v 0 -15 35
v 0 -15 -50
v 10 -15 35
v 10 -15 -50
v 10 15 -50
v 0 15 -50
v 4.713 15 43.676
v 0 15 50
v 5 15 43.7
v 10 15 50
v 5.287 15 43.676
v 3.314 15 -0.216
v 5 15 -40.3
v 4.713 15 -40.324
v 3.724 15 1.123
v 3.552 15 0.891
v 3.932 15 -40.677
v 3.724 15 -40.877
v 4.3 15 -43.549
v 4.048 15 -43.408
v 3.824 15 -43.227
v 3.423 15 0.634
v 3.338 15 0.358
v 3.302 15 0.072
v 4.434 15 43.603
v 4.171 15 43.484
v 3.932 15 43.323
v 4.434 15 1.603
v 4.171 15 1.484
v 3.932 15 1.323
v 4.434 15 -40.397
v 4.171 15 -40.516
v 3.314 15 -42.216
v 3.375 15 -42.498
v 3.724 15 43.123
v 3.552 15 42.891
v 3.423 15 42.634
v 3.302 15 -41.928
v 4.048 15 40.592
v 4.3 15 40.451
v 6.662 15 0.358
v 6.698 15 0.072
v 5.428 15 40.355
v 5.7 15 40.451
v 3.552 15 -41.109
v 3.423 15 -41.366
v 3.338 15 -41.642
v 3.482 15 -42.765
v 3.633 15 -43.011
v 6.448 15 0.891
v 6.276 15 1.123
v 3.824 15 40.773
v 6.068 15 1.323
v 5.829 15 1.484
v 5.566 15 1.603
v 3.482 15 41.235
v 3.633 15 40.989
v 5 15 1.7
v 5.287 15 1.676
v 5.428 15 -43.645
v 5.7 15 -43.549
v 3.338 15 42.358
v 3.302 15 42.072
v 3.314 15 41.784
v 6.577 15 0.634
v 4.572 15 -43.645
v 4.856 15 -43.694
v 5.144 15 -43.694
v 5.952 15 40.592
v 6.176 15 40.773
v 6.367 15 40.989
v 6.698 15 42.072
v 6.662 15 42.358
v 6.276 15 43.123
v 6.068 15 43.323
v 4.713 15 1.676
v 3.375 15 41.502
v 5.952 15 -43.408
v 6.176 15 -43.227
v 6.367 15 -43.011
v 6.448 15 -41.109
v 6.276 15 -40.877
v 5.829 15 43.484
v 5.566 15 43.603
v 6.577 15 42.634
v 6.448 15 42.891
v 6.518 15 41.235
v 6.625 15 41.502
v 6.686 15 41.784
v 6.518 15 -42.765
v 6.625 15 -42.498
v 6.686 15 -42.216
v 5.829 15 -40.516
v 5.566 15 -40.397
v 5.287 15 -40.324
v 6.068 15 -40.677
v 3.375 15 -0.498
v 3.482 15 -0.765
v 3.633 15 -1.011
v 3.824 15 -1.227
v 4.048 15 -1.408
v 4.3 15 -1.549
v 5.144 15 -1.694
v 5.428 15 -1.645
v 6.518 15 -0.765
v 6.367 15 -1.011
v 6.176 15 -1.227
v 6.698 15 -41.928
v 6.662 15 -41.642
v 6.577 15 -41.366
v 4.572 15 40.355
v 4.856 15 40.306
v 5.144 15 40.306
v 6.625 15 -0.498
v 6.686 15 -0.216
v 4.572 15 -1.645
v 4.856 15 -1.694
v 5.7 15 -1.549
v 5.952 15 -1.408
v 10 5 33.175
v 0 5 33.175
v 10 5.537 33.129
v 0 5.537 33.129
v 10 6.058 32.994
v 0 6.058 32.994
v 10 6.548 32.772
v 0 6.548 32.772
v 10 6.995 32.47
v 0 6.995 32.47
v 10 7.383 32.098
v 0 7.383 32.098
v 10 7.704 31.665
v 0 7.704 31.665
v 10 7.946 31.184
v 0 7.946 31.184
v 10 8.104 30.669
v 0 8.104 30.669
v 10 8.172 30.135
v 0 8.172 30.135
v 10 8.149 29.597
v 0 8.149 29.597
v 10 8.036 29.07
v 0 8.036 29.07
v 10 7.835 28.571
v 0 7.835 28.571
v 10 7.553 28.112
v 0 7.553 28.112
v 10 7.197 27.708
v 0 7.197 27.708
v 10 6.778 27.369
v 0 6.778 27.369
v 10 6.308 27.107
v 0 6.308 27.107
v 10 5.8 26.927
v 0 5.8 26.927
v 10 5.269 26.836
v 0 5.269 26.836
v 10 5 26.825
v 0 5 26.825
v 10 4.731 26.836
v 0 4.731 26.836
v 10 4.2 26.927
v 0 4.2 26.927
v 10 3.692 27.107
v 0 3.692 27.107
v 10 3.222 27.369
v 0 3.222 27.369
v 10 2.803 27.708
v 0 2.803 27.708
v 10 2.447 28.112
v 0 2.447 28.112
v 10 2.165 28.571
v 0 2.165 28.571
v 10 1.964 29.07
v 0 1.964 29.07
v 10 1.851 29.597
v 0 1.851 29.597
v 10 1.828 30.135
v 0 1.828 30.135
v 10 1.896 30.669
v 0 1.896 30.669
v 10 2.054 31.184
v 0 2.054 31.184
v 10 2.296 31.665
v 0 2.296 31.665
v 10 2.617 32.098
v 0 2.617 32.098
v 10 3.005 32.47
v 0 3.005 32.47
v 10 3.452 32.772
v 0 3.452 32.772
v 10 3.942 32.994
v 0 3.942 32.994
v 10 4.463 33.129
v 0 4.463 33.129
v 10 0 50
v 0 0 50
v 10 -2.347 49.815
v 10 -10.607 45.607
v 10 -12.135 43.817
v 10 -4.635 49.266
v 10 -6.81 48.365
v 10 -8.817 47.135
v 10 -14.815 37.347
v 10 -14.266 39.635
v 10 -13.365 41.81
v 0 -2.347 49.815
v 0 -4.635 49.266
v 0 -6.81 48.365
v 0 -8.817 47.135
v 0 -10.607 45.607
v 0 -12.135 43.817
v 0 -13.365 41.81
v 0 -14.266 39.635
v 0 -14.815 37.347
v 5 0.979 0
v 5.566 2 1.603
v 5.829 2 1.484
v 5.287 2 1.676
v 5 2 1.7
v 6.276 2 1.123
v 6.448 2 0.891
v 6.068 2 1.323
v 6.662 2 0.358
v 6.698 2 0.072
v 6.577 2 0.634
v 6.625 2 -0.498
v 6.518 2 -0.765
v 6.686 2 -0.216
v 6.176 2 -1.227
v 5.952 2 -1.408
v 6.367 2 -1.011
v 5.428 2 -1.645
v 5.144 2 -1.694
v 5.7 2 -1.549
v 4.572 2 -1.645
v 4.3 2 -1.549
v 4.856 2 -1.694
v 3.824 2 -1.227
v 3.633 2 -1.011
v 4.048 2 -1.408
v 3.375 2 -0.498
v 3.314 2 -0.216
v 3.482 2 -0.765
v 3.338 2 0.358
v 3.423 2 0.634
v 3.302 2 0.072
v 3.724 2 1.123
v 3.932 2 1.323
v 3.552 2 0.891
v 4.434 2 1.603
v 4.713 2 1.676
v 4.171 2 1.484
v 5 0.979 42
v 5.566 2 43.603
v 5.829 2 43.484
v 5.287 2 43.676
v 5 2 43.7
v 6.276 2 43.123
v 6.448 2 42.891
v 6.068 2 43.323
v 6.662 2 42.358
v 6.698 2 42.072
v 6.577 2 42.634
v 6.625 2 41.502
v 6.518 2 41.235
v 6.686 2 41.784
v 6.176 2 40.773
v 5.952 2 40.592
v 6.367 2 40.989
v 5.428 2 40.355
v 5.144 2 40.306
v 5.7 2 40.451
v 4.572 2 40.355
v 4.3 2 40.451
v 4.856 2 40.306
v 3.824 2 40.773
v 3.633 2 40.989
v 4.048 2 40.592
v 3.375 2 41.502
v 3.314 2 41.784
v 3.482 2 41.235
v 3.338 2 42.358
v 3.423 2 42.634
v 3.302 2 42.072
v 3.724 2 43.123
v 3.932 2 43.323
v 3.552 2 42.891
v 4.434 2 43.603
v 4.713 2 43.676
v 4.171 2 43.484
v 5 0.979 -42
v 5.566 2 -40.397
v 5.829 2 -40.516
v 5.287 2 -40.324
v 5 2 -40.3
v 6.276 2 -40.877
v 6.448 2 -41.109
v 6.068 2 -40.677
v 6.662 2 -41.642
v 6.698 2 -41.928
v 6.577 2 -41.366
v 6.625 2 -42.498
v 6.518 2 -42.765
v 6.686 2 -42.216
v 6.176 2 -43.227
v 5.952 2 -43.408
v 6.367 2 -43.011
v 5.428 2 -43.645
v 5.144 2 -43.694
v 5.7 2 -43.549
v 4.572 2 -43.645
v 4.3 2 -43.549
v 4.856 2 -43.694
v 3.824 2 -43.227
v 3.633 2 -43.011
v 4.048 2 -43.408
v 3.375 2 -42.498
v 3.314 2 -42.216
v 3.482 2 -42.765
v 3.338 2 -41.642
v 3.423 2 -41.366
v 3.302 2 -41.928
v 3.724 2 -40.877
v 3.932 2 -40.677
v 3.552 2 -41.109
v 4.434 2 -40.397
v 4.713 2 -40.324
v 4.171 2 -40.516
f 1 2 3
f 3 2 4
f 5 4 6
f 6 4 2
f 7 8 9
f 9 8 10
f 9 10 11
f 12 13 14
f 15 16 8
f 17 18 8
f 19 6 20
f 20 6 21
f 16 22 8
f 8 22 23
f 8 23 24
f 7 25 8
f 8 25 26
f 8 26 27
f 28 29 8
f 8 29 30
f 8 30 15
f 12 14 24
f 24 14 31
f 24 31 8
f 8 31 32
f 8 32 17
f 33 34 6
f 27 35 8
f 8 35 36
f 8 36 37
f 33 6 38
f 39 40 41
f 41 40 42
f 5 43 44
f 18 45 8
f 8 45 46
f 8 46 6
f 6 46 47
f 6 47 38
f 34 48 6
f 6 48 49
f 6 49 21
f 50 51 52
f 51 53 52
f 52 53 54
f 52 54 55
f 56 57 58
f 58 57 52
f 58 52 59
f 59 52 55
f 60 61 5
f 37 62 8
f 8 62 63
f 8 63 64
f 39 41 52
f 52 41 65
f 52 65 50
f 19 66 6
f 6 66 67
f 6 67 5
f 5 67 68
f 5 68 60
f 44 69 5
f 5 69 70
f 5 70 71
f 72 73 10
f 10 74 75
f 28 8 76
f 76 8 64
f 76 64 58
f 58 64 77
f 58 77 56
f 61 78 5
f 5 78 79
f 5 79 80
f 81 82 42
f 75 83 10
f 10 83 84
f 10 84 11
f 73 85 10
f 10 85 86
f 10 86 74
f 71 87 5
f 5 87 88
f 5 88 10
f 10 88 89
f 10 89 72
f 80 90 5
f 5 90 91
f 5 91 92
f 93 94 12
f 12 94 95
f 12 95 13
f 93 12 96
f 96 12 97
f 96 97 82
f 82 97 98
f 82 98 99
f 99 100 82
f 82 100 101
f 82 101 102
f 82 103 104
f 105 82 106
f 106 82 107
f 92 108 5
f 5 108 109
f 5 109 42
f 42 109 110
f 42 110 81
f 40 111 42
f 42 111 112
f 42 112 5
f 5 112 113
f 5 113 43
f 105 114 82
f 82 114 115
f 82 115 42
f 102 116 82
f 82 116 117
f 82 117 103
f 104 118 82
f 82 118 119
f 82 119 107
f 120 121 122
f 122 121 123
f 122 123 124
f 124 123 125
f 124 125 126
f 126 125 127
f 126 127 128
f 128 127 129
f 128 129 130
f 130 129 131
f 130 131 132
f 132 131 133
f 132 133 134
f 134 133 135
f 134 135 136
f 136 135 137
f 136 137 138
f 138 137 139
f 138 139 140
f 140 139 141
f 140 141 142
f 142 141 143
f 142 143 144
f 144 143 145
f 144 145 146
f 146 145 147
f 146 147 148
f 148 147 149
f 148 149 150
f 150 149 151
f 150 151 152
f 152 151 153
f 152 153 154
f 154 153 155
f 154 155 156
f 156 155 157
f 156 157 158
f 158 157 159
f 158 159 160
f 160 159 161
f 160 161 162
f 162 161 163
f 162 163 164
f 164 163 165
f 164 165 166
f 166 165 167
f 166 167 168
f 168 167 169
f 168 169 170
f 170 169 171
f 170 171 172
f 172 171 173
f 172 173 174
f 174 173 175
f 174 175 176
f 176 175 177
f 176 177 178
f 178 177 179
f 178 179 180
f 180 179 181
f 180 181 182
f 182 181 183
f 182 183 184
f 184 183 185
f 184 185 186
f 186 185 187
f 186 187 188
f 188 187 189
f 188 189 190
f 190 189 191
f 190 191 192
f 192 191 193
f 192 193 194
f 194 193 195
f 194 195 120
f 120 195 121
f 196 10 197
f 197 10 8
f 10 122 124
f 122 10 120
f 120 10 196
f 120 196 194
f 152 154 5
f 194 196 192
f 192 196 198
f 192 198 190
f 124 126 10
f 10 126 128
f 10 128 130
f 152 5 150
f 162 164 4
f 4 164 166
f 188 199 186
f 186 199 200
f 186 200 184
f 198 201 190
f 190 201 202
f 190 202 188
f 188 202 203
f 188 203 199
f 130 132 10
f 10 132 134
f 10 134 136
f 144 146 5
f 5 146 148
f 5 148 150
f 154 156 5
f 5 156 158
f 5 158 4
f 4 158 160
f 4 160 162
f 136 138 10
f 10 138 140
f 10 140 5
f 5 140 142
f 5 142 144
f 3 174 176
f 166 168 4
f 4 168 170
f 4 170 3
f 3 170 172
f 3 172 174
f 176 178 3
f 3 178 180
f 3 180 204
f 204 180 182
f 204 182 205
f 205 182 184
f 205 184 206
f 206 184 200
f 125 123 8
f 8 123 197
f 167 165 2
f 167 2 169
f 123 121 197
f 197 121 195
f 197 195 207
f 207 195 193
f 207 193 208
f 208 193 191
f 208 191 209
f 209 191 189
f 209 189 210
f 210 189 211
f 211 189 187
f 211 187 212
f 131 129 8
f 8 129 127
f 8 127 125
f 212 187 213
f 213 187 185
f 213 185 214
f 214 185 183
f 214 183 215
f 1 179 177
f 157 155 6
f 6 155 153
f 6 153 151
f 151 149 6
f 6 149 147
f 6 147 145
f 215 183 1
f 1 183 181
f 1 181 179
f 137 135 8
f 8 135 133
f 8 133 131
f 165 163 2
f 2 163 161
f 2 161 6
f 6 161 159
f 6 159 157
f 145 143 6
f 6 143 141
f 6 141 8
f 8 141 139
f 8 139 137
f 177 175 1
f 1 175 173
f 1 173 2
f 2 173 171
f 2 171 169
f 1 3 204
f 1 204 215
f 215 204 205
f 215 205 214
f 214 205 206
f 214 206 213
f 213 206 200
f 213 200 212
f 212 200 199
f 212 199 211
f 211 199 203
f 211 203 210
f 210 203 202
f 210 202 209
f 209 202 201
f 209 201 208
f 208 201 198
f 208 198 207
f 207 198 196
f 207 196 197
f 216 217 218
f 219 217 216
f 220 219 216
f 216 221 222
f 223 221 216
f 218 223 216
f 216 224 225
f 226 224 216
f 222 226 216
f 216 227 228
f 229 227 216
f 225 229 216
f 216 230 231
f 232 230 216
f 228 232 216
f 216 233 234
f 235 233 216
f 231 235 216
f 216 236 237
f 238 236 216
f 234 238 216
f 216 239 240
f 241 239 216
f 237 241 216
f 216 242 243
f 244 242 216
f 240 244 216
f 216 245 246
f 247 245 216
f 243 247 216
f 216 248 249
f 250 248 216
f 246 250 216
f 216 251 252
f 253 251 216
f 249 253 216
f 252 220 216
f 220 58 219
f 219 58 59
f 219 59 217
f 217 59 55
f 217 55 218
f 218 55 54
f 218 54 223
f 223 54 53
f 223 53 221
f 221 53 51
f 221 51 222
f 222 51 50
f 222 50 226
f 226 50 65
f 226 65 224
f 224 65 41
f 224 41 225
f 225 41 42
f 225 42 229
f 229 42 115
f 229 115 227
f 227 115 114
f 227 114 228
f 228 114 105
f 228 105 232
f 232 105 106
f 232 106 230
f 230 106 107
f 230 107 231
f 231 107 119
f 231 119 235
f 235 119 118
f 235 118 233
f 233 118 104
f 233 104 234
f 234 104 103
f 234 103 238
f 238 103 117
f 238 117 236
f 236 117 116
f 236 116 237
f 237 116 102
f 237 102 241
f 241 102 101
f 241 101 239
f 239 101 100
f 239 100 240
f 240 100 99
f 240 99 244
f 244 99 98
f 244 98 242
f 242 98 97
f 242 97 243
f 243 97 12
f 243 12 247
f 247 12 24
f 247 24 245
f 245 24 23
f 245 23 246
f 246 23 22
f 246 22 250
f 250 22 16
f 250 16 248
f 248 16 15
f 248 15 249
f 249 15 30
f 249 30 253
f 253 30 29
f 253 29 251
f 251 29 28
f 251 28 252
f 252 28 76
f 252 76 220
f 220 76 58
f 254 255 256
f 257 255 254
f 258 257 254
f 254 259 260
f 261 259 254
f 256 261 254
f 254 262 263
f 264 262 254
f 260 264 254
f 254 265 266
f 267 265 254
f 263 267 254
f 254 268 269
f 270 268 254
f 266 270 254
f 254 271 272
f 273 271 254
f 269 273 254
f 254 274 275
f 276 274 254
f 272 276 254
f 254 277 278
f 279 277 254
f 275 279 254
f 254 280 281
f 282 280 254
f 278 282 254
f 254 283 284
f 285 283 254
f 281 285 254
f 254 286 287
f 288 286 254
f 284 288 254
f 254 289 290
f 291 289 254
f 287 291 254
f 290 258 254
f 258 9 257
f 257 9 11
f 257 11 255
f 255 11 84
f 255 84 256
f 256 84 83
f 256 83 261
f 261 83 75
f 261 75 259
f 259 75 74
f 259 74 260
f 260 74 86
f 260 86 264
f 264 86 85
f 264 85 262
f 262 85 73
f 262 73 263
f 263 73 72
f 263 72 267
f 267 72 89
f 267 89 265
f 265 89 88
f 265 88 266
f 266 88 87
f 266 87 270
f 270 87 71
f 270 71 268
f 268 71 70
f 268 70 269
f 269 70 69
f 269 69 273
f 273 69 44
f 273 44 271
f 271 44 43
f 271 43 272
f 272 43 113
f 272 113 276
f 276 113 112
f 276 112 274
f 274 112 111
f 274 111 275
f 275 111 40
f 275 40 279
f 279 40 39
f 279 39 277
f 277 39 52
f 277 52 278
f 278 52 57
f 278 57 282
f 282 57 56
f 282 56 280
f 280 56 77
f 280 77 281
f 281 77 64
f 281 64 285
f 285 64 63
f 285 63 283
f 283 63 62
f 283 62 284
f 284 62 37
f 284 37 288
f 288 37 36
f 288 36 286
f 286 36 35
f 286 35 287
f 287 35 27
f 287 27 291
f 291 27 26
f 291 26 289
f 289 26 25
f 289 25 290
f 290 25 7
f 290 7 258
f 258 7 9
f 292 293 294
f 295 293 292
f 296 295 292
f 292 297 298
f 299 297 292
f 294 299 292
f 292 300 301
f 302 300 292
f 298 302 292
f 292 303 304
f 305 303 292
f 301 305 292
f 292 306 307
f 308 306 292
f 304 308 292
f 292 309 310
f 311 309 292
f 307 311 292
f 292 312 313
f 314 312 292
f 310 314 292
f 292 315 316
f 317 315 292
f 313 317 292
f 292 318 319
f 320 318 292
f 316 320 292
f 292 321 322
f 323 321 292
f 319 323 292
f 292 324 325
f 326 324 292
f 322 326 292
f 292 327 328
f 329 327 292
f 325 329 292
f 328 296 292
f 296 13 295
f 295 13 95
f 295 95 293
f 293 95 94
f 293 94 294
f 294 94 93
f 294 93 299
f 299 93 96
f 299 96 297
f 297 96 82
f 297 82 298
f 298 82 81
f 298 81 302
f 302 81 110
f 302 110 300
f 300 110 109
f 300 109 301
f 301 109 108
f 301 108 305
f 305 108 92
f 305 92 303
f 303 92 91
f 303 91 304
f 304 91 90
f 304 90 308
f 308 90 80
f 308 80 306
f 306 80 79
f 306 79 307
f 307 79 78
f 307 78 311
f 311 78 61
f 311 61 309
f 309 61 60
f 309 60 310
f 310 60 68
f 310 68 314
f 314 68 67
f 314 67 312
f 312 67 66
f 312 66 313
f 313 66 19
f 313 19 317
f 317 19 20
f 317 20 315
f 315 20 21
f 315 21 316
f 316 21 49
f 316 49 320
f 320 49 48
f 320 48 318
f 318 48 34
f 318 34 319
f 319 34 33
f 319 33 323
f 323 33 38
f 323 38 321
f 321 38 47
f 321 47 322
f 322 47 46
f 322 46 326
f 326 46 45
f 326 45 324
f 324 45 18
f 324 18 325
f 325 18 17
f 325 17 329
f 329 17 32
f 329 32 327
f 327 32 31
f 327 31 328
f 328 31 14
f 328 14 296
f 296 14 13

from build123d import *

# Parameters (mm, degrees)
SKETCH1_W                     = 100
SKETCH1_H                     = 30
SKETCH1_R                     = 3.175
BOSS_EXTRUDE1_DEPTH           = 10
FILLET1_R                     = 15
CBORE_FOR_M3_SHCS_D           = 3.4
CBORE_FOR_M3_SHCS_DEPTH       = 23
CBORE_FOR_M3_SHCS_CBORE_D     = 6.5
CBORE_FOR_M3_SHCS_CBORE_DEPTH = 3
CBORE_FOR_M3_SHCS_TIP         = 1.021463052


with BuildPart() as part:
    # Sketch1 → Boss-Extrude1 (new body)
    with BuildSketch(Plane(origin=(0, 0, 0), x_dir=(0, 0, -1), z_dir=(1, 0, 0))):
        Rectangle(SKETCH1_W, SKETCH1_H)
        with Locations((-30, 5)):
            Circle(SKETCH1_R, mode=Mode.SUBTRACT)
    extrude(amount=BOSS_EXTRUDE1_DEPTH)

    # Fillet1
    fillet1_edges = [part.edges().sort_by_distance(p)[0] for p in [
        (5, -15, 50),
    ]]
    fillet(fillet1_edges, radius=FILLET1_R)

    # CBORE for M3 SHCS
    with Locations(Plane(origin=(-616.293536786, 25, -1323.282701689), x_dir=(1, 0, 0), z_dir=(0, 1, 0))):
        with Locations((731.293536786, -1281.282701689), (731.293536786, -1359.282701689), (621.293536786, -1281.282701689), (621.293536786, -1365.282701689), (621.293536786, -1323.282701689), (731.293536786, -1320.282701689)):
            CounterBoreHole(CBORE_FOR_M3_SHCS_D / 2, CBORE_FOR_M3_SHCS_CBORE_D / 2, CBORE_FOR_M3_SHCS_CBORE_DEPTH, depth=CBORE_FOR_M3_SHCS_DEPTH)
            with Locations((0, 0, -(CBORE_FOR_M3_SHCS_DEPTH + CBORE_FOR_M3_SHCS_TIP / 2))):  # 118° drill point
                Cone(0, CBORE_FOR_M3_SHCS_D / 2, CBORE_FOR_M3_SHCS_TIP, mode=Mode.SUBTRACT)


solid = part.part
